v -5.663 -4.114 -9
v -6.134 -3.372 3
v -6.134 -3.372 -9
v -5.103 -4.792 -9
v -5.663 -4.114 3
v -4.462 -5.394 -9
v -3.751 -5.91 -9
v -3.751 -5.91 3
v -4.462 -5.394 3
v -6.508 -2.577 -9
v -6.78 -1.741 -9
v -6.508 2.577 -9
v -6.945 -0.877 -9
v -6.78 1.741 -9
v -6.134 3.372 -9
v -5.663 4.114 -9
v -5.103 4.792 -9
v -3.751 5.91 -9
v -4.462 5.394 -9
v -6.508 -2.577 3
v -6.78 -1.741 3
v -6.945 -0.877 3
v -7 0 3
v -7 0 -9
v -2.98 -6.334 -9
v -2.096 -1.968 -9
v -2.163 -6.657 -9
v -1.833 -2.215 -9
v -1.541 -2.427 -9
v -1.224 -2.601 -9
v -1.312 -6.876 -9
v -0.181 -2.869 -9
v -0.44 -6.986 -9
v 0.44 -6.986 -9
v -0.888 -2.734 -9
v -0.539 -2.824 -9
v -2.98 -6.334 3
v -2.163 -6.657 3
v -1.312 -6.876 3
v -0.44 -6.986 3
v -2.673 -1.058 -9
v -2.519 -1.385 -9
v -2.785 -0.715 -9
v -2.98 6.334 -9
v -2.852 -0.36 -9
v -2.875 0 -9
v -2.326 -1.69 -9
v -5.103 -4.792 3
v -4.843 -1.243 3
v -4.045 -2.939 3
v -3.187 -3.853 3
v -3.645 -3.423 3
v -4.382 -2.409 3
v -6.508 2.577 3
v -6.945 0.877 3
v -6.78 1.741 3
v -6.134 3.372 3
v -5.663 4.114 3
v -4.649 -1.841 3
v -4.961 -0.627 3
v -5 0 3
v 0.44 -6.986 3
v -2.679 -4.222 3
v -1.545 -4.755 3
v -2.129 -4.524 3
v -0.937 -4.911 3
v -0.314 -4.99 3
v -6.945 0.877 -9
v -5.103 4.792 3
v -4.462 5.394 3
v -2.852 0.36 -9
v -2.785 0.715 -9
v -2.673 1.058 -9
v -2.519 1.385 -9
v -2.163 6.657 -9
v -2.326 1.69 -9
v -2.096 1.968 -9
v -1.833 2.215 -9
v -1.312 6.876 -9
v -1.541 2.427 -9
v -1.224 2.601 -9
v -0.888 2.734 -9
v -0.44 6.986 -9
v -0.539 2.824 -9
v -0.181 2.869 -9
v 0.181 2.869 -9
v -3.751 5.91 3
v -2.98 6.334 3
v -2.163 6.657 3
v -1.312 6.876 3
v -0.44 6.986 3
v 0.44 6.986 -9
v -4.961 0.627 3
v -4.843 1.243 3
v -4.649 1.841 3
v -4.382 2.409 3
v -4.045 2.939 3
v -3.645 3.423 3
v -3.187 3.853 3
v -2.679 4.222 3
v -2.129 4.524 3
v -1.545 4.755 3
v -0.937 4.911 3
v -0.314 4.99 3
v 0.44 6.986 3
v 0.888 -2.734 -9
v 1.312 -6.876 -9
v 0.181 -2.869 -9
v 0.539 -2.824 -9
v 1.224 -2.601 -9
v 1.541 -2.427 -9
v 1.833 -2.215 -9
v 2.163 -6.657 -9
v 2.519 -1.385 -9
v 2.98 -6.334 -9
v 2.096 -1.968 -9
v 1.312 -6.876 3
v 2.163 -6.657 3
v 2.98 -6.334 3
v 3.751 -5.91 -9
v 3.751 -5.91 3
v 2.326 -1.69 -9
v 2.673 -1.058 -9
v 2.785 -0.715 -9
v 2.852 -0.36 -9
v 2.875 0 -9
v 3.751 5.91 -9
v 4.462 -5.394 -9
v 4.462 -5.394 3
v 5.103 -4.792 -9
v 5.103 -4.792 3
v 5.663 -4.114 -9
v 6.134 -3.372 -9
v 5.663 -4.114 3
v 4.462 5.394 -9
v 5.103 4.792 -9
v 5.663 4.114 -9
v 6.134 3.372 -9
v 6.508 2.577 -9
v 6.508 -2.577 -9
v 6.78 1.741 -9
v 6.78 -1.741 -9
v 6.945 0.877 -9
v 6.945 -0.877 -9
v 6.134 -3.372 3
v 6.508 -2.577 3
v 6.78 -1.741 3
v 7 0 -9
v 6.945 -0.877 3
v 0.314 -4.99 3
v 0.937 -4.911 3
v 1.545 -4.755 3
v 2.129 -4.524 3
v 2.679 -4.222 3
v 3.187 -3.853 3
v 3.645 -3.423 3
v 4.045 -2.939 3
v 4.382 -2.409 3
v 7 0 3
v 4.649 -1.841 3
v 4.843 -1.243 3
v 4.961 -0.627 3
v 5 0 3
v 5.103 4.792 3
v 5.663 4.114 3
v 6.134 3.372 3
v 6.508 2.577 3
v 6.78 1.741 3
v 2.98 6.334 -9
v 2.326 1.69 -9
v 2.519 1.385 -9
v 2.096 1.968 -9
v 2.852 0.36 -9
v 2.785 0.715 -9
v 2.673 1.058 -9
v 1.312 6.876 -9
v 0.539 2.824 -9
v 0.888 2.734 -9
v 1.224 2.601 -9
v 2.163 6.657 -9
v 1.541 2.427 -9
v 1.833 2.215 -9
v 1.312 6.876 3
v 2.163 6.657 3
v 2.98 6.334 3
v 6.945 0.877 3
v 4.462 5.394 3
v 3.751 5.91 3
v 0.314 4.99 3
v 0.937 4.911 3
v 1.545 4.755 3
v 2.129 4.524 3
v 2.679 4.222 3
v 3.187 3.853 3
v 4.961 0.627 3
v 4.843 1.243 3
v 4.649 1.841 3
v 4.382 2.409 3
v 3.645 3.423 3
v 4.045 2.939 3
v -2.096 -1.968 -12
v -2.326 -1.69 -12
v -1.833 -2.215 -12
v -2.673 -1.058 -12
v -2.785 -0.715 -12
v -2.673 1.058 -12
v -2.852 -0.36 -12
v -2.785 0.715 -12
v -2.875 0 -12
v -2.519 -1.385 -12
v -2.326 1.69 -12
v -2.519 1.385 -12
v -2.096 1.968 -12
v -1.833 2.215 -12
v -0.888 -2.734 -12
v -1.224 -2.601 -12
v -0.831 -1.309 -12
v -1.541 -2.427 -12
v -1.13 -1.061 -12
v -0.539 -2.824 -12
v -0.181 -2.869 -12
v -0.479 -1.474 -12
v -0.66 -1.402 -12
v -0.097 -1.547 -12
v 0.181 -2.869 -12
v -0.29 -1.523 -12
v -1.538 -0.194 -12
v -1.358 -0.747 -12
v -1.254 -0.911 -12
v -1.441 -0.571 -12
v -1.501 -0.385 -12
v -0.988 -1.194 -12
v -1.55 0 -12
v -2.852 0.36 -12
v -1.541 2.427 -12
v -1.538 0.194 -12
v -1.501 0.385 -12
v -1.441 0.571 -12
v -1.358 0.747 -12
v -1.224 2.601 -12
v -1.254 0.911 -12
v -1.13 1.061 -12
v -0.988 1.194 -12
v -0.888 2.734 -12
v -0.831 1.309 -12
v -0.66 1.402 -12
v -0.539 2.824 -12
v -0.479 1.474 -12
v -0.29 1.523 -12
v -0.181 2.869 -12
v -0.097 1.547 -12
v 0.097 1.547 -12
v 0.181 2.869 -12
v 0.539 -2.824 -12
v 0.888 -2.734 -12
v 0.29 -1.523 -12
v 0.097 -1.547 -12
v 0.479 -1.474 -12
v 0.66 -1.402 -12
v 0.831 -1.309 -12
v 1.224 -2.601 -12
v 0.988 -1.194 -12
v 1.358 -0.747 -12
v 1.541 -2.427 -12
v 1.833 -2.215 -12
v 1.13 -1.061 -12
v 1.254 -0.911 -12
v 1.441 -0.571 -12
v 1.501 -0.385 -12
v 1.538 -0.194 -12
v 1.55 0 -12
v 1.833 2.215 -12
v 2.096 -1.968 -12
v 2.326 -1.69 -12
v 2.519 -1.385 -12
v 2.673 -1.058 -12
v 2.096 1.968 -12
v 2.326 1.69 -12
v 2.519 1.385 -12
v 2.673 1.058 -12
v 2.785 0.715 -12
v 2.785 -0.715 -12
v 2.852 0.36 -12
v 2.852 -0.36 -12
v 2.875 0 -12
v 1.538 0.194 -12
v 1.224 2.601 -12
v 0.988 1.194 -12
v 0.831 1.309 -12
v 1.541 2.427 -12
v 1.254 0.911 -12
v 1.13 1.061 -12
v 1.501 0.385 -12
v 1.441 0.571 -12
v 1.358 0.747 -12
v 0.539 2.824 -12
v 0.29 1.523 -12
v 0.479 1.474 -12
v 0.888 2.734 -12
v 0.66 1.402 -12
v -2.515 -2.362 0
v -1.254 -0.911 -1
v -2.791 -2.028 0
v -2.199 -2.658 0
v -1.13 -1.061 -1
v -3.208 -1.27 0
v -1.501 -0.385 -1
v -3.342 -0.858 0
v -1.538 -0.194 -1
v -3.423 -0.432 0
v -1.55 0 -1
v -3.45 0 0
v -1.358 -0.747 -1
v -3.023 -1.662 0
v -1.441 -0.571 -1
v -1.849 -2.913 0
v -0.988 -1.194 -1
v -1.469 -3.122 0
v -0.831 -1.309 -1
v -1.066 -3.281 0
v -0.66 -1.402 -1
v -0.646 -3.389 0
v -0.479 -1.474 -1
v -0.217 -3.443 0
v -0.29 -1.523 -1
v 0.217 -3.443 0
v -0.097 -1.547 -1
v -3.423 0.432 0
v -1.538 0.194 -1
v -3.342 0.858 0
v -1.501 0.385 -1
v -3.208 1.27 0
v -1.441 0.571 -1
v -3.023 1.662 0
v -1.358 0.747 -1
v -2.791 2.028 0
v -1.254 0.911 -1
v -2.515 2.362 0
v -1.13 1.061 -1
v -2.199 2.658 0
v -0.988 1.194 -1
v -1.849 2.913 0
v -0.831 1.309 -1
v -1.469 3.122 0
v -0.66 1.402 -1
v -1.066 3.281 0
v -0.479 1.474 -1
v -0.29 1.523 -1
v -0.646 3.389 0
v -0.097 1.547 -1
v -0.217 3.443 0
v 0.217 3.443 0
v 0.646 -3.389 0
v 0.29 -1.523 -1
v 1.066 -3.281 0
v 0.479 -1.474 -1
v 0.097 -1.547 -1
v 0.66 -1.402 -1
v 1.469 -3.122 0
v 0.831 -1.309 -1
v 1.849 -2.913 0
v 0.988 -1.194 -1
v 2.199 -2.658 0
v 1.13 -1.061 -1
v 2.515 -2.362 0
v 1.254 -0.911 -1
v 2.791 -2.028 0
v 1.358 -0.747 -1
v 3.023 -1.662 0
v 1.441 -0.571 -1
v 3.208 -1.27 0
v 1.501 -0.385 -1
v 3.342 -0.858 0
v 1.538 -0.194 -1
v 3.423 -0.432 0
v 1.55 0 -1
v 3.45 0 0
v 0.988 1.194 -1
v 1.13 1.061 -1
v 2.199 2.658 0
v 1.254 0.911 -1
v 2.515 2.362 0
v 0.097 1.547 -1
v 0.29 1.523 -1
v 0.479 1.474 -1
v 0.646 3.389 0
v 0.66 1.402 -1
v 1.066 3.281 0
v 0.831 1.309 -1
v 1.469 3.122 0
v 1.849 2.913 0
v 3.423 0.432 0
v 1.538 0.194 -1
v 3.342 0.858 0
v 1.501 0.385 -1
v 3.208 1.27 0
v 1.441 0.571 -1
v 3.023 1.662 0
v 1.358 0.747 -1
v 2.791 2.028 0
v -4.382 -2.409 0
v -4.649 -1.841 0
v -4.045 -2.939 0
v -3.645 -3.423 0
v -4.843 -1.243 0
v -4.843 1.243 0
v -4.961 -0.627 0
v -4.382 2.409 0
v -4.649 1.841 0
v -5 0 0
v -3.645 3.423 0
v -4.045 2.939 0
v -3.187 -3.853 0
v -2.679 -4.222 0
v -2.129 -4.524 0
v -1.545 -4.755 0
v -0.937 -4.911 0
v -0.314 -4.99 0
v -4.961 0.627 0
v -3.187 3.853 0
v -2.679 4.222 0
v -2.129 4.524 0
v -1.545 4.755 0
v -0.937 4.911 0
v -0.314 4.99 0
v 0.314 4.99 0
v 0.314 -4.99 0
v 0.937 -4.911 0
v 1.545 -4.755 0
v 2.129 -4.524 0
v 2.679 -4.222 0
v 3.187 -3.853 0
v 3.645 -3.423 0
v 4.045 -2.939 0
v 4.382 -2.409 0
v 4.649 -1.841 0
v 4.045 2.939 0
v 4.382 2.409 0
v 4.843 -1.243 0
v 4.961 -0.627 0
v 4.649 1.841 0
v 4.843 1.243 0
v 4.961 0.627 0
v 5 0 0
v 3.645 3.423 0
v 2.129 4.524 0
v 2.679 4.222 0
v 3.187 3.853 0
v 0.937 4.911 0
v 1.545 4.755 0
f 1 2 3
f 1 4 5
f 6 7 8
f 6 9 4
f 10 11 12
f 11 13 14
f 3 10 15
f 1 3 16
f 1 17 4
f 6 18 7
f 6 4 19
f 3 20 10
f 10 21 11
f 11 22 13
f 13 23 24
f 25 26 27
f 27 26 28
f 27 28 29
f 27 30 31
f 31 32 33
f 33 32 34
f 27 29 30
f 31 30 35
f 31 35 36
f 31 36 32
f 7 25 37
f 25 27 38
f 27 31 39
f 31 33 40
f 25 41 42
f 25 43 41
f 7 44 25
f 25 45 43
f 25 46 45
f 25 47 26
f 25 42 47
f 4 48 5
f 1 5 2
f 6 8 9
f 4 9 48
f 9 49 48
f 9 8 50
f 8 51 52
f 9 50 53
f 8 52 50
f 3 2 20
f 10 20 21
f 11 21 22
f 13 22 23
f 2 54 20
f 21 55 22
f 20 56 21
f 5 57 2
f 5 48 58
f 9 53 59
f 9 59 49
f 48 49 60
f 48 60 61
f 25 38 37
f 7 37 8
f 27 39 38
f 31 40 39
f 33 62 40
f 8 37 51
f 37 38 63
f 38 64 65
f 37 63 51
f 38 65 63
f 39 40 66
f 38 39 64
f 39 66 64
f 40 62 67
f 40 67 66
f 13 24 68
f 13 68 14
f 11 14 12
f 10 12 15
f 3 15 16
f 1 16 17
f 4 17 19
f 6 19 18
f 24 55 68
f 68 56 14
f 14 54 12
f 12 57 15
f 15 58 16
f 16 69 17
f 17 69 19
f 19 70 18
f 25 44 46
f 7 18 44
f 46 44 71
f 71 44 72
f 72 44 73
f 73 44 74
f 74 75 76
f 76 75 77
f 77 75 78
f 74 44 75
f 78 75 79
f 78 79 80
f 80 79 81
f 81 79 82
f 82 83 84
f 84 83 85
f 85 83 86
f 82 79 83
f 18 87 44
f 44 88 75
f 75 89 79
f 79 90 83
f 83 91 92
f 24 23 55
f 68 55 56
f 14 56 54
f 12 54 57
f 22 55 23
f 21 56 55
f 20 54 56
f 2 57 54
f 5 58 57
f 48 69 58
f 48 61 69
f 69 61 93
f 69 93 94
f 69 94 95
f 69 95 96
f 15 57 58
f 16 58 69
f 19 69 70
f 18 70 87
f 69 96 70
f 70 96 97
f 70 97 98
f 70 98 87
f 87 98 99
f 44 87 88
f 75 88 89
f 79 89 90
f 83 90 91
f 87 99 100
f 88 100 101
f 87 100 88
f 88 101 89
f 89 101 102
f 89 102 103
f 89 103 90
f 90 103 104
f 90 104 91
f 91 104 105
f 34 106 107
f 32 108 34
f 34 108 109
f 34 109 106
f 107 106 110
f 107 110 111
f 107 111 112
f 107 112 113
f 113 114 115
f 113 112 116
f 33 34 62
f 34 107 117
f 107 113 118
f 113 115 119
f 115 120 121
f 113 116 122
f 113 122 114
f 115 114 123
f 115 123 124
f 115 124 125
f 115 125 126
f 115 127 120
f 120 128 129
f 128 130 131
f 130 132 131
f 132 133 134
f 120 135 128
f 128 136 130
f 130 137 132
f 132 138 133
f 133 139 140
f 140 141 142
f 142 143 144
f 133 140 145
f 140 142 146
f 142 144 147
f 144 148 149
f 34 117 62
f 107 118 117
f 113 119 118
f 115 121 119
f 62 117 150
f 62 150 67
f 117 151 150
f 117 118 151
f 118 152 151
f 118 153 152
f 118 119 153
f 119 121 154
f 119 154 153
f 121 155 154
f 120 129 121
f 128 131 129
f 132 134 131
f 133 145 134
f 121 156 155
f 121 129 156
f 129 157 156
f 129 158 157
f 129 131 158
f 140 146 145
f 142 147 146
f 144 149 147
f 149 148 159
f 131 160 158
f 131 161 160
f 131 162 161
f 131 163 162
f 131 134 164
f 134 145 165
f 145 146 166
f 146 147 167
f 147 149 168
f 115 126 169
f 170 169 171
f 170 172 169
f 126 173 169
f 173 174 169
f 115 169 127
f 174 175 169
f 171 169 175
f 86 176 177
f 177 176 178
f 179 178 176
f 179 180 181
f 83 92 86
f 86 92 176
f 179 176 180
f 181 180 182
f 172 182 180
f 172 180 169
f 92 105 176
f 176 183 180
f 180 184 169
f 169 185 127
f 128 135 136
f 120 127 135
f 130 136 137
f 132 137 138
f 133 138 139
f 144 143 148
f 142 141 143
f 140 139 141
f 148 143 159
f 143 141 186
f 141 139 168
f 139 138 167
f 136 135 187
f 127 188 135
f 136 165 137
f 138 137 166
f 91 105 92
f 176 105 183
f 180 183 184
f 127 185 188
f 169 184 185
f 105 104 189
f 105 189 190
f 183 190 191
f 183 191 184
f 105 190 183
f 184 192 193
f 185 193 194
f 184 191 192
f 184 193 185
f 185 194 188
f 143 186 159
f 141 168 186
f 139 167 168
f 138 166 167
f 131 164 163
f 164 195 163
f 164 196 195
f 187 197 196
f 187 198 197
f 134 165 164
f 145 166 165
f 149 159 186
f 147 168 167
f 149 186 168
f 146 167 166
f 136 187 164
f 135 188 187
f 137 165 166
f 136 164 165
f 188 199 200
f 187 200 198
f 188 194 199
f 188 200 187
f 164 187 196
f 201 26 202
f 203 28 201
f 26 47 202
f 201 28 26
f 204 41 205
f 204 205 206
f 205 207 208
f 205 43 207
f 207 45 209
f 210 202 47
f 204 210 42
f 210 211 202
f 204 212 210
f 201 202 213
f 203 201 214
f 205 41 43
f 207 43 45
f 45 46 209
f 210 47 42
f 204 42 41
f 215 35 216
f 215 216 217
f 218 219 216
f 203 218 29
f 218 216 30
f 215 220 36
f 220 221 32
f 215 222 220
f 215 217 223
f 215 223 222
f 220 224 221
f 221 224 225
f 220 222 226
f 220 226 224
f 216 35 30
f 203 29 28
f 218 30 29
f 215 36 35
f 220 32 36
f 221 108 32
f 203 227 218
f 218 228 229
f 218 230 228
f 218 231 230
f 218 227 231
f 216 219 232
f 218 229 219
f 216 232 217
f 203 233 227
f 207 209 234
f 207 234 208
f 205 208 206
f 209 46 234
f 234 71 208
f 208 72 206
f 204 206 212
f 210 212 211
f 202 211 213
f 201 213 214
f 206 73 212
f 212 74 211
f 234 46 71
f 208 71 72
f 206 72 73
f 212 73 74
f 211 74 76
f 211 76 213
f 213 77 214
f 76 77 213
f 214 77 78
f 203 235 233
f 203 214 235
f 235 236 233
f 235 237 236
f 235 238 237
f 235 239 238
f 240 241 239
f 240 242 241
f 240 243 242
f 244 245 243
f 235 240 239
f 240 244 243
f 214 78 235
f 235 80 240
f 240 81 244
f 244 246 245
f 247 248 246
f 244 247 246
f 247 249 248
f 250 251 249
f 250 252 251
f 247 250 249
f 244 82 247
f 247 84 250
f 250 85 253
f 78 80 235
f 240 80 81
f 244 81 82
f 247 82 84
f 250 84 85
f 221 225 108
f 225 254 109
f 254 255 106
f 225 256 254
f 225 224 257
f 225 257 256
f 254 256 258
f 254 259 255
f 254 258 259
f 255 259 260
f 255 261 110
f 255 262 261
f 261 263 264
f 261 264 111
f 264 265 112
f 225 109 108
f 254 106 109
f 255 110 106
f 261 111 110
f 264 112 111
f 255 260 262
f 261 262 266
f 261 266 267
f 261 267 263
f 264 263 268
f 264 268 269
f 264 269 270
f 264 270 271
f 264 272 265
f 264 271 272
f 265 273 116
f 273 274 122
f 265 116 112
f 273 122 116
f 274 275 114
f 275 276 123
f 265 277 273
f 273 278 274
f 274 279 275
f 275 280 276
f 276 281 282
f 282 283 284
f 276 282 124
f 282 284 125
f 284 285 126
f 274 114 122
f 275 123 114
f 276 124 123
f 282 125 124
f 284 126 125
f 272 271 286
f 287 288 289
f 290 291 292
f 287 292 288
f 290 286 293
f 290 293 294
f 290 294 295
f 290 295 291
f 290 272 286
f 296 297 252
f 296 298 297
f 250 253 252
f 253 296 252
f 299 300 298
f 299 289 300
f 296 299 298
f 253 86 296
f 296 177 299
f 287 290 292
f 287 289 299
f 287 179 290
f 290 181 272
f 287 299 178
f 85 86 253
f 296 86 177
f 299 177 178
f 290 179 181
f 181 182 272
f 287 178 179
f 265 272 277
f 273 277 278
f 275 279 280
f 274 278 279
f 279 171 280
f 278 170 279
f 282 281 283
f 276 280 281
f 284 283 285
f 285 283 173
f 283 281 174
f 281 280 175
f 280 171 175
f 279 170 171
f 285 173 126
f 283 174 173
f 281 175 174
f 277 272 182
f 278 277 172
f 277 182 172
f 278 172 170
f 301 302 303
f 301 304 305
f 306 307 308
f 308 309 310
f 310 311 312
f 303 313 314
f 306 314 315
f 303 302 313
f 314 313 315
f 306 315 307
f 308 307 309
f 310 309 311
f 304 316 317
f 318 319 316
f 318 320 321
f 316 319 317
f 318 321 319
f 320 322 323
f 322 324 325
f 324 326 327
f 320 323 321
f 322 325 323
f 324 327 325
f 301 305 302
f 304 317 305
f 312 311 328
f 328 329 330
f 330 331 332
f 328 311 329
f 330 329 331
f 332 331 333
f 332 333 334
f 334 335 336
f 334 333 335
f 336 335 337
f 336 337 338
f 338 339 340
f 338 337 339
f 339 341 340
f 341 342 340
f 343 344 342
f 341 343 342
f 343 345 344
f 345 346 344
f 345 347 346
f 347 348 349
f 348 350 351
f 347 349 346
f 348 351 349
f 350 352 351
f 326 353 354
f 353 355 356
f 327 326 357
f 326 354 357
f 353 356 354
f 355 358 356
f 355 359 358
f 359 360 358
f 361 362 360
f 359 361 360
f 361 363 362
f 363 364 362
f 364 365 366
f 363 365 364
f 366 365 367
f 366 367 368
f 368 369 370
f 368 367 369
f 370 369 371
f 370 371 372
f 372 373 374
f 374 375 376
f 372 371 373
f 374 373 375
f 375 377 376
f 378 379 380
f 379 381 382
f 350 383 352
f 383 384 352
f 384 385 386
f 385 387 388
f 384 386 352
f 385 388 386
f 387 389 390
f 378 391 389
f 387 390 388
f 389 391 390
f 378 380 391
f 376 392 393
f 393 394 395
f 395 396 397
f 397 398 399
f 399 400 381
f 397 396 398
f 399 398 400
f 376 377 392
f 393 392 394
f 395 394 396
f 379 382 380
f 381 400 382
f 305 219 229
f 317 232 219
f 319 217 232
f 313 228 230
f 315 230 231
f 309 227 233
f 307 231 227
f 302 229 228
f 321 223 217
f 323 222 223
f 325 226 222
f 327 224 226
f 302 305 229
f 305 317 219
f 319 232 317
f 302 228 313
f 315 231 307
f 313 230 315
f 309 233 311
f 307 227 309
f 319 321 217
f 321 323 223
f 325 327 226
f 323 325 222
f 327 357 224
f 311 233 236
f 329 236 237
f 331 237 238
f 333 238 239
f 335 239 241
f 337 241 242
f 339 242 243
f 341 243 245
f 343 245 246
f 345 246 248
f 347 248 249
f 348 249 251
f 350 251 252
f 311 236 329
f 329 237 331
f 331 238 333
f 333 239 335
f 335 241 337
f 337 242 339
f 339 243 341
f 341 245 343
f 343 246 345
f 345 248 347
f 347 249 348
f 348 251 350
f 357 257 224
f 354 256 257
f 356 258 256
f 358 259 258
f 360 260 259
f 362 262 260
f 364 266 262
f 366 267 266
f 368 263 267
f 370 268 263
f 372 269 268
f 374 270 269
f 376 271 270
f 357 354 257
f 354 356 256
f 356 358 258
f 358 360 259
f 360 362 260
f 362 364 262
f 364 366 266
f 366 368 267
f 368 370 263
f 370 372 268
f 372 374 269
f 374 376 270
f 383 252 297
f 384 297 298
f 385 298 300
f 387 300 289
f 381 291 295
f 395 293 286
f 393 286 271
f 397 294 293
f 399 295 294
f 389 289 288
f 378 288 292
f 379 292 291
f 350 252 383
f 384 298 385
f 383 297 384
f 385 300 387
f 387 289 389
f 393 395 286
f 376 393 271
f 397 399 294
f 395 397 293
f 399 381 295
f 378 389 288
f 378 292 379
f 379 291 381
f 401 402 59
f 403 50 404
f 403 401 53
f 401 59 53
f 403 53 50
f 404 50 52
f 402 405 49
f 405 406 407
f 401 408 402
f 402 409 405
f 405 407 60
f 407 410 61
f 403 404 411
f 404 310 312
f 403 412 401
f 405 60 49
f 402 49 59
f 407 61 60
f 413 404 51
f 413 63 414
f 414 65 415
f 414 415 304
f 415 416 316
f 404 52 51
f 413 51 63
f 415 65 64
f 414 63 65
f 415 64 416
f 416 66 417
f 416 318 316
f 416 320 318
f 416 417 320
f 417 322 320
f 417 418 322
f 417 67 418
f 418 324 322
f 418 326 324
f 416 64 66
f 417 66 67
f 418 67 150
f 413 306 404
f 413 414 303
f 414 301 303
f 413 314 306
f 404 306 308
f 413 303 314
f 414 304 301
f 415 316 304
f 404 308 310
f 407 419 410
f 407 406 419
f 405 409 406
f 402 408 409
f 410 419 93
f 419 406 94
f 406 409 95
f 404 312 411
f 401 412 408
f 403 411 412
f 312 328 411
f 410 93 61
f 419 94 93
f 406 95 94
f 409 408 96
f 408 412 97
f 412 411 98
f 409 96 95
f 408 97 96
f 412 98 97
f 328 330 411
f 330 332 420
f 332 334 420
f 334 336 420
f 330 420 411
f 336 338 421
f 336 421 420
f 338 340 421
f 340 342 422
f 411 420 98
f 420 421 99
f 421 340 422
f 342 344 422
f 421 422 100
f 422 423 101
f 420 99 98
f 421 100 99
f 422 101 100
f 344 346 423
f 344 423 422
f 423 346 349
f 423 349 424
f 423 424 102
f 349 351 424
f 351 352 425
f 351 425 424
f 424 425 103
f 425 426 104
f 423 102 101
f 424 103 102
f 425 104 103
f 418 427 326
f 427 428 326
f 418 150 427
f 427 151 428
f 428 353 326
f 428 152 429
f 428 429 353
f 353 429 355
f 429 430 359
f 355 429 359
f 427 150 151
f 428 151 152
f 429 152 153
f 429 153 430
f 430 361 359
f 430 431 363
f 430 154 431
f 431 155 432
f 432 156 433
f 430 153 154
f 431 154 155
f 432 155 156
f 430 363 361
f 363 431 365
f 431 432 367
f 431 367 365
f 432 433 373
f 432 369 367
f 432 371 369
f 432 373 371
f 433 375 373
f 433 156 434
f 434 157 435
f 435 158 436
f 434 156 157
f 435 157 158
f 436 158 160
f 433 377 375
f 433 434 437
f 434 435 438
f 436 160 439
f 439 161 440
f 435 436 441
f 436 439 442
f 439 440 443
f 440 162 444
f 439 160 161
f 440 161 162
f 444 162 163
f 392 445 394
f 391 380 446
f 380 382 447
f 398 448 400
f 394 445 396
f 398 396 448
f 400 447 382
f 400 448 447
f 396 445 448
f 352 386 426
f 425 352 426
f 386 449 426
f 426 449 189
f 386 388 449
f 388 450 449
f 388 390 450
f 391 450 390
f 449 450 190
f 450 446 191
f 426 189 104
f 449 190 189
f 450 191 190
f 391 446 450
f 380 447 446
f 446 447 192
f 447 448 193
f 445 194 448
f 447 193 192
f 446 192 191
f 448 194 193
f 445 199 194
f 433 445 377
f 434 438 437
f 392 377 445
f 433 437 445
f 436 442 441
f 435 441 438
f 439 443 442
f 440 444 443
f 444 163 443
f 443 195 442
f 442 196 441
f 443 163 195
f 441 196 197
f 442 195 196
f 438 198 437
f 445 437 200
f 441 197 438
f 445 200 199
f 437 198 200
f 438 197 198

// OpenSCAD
$fn = 50;

difference() {
	union() {
		translate(v = [0, 0, -9.0]) {
			cylinder(h = 12, r = 7.0);
		}
		#translate(v = [0, 0, -12.0]) {
			cylinder(h = 12, r = 2.875);
		}
	}
	union() {
		translate(v = [0, 0, 0]) {
			rotate(a = [0, 0, 0]) {
				difference() {
					union() {
						translate(v = [0, 0, -12.0]) {
							cylinder(h = 12, r = 1.25);
						}
						translate(v = [0, 0, -1.0]) {
							cylinder(h = 1.0, r1 = 1.55, r2 = 3.45);
						}
						translate(v = [0, 0, -12.0]) {
							cylinder(h = 12, r = 1.55);
						}
						translate(v = [0, 0, -12.0]) {
							cylinder(h = 12, r = 1.25);
						}
					}
					union();
				}
			}
		}
		#cylinder(h = 3, r = 5.0);
	}
}
